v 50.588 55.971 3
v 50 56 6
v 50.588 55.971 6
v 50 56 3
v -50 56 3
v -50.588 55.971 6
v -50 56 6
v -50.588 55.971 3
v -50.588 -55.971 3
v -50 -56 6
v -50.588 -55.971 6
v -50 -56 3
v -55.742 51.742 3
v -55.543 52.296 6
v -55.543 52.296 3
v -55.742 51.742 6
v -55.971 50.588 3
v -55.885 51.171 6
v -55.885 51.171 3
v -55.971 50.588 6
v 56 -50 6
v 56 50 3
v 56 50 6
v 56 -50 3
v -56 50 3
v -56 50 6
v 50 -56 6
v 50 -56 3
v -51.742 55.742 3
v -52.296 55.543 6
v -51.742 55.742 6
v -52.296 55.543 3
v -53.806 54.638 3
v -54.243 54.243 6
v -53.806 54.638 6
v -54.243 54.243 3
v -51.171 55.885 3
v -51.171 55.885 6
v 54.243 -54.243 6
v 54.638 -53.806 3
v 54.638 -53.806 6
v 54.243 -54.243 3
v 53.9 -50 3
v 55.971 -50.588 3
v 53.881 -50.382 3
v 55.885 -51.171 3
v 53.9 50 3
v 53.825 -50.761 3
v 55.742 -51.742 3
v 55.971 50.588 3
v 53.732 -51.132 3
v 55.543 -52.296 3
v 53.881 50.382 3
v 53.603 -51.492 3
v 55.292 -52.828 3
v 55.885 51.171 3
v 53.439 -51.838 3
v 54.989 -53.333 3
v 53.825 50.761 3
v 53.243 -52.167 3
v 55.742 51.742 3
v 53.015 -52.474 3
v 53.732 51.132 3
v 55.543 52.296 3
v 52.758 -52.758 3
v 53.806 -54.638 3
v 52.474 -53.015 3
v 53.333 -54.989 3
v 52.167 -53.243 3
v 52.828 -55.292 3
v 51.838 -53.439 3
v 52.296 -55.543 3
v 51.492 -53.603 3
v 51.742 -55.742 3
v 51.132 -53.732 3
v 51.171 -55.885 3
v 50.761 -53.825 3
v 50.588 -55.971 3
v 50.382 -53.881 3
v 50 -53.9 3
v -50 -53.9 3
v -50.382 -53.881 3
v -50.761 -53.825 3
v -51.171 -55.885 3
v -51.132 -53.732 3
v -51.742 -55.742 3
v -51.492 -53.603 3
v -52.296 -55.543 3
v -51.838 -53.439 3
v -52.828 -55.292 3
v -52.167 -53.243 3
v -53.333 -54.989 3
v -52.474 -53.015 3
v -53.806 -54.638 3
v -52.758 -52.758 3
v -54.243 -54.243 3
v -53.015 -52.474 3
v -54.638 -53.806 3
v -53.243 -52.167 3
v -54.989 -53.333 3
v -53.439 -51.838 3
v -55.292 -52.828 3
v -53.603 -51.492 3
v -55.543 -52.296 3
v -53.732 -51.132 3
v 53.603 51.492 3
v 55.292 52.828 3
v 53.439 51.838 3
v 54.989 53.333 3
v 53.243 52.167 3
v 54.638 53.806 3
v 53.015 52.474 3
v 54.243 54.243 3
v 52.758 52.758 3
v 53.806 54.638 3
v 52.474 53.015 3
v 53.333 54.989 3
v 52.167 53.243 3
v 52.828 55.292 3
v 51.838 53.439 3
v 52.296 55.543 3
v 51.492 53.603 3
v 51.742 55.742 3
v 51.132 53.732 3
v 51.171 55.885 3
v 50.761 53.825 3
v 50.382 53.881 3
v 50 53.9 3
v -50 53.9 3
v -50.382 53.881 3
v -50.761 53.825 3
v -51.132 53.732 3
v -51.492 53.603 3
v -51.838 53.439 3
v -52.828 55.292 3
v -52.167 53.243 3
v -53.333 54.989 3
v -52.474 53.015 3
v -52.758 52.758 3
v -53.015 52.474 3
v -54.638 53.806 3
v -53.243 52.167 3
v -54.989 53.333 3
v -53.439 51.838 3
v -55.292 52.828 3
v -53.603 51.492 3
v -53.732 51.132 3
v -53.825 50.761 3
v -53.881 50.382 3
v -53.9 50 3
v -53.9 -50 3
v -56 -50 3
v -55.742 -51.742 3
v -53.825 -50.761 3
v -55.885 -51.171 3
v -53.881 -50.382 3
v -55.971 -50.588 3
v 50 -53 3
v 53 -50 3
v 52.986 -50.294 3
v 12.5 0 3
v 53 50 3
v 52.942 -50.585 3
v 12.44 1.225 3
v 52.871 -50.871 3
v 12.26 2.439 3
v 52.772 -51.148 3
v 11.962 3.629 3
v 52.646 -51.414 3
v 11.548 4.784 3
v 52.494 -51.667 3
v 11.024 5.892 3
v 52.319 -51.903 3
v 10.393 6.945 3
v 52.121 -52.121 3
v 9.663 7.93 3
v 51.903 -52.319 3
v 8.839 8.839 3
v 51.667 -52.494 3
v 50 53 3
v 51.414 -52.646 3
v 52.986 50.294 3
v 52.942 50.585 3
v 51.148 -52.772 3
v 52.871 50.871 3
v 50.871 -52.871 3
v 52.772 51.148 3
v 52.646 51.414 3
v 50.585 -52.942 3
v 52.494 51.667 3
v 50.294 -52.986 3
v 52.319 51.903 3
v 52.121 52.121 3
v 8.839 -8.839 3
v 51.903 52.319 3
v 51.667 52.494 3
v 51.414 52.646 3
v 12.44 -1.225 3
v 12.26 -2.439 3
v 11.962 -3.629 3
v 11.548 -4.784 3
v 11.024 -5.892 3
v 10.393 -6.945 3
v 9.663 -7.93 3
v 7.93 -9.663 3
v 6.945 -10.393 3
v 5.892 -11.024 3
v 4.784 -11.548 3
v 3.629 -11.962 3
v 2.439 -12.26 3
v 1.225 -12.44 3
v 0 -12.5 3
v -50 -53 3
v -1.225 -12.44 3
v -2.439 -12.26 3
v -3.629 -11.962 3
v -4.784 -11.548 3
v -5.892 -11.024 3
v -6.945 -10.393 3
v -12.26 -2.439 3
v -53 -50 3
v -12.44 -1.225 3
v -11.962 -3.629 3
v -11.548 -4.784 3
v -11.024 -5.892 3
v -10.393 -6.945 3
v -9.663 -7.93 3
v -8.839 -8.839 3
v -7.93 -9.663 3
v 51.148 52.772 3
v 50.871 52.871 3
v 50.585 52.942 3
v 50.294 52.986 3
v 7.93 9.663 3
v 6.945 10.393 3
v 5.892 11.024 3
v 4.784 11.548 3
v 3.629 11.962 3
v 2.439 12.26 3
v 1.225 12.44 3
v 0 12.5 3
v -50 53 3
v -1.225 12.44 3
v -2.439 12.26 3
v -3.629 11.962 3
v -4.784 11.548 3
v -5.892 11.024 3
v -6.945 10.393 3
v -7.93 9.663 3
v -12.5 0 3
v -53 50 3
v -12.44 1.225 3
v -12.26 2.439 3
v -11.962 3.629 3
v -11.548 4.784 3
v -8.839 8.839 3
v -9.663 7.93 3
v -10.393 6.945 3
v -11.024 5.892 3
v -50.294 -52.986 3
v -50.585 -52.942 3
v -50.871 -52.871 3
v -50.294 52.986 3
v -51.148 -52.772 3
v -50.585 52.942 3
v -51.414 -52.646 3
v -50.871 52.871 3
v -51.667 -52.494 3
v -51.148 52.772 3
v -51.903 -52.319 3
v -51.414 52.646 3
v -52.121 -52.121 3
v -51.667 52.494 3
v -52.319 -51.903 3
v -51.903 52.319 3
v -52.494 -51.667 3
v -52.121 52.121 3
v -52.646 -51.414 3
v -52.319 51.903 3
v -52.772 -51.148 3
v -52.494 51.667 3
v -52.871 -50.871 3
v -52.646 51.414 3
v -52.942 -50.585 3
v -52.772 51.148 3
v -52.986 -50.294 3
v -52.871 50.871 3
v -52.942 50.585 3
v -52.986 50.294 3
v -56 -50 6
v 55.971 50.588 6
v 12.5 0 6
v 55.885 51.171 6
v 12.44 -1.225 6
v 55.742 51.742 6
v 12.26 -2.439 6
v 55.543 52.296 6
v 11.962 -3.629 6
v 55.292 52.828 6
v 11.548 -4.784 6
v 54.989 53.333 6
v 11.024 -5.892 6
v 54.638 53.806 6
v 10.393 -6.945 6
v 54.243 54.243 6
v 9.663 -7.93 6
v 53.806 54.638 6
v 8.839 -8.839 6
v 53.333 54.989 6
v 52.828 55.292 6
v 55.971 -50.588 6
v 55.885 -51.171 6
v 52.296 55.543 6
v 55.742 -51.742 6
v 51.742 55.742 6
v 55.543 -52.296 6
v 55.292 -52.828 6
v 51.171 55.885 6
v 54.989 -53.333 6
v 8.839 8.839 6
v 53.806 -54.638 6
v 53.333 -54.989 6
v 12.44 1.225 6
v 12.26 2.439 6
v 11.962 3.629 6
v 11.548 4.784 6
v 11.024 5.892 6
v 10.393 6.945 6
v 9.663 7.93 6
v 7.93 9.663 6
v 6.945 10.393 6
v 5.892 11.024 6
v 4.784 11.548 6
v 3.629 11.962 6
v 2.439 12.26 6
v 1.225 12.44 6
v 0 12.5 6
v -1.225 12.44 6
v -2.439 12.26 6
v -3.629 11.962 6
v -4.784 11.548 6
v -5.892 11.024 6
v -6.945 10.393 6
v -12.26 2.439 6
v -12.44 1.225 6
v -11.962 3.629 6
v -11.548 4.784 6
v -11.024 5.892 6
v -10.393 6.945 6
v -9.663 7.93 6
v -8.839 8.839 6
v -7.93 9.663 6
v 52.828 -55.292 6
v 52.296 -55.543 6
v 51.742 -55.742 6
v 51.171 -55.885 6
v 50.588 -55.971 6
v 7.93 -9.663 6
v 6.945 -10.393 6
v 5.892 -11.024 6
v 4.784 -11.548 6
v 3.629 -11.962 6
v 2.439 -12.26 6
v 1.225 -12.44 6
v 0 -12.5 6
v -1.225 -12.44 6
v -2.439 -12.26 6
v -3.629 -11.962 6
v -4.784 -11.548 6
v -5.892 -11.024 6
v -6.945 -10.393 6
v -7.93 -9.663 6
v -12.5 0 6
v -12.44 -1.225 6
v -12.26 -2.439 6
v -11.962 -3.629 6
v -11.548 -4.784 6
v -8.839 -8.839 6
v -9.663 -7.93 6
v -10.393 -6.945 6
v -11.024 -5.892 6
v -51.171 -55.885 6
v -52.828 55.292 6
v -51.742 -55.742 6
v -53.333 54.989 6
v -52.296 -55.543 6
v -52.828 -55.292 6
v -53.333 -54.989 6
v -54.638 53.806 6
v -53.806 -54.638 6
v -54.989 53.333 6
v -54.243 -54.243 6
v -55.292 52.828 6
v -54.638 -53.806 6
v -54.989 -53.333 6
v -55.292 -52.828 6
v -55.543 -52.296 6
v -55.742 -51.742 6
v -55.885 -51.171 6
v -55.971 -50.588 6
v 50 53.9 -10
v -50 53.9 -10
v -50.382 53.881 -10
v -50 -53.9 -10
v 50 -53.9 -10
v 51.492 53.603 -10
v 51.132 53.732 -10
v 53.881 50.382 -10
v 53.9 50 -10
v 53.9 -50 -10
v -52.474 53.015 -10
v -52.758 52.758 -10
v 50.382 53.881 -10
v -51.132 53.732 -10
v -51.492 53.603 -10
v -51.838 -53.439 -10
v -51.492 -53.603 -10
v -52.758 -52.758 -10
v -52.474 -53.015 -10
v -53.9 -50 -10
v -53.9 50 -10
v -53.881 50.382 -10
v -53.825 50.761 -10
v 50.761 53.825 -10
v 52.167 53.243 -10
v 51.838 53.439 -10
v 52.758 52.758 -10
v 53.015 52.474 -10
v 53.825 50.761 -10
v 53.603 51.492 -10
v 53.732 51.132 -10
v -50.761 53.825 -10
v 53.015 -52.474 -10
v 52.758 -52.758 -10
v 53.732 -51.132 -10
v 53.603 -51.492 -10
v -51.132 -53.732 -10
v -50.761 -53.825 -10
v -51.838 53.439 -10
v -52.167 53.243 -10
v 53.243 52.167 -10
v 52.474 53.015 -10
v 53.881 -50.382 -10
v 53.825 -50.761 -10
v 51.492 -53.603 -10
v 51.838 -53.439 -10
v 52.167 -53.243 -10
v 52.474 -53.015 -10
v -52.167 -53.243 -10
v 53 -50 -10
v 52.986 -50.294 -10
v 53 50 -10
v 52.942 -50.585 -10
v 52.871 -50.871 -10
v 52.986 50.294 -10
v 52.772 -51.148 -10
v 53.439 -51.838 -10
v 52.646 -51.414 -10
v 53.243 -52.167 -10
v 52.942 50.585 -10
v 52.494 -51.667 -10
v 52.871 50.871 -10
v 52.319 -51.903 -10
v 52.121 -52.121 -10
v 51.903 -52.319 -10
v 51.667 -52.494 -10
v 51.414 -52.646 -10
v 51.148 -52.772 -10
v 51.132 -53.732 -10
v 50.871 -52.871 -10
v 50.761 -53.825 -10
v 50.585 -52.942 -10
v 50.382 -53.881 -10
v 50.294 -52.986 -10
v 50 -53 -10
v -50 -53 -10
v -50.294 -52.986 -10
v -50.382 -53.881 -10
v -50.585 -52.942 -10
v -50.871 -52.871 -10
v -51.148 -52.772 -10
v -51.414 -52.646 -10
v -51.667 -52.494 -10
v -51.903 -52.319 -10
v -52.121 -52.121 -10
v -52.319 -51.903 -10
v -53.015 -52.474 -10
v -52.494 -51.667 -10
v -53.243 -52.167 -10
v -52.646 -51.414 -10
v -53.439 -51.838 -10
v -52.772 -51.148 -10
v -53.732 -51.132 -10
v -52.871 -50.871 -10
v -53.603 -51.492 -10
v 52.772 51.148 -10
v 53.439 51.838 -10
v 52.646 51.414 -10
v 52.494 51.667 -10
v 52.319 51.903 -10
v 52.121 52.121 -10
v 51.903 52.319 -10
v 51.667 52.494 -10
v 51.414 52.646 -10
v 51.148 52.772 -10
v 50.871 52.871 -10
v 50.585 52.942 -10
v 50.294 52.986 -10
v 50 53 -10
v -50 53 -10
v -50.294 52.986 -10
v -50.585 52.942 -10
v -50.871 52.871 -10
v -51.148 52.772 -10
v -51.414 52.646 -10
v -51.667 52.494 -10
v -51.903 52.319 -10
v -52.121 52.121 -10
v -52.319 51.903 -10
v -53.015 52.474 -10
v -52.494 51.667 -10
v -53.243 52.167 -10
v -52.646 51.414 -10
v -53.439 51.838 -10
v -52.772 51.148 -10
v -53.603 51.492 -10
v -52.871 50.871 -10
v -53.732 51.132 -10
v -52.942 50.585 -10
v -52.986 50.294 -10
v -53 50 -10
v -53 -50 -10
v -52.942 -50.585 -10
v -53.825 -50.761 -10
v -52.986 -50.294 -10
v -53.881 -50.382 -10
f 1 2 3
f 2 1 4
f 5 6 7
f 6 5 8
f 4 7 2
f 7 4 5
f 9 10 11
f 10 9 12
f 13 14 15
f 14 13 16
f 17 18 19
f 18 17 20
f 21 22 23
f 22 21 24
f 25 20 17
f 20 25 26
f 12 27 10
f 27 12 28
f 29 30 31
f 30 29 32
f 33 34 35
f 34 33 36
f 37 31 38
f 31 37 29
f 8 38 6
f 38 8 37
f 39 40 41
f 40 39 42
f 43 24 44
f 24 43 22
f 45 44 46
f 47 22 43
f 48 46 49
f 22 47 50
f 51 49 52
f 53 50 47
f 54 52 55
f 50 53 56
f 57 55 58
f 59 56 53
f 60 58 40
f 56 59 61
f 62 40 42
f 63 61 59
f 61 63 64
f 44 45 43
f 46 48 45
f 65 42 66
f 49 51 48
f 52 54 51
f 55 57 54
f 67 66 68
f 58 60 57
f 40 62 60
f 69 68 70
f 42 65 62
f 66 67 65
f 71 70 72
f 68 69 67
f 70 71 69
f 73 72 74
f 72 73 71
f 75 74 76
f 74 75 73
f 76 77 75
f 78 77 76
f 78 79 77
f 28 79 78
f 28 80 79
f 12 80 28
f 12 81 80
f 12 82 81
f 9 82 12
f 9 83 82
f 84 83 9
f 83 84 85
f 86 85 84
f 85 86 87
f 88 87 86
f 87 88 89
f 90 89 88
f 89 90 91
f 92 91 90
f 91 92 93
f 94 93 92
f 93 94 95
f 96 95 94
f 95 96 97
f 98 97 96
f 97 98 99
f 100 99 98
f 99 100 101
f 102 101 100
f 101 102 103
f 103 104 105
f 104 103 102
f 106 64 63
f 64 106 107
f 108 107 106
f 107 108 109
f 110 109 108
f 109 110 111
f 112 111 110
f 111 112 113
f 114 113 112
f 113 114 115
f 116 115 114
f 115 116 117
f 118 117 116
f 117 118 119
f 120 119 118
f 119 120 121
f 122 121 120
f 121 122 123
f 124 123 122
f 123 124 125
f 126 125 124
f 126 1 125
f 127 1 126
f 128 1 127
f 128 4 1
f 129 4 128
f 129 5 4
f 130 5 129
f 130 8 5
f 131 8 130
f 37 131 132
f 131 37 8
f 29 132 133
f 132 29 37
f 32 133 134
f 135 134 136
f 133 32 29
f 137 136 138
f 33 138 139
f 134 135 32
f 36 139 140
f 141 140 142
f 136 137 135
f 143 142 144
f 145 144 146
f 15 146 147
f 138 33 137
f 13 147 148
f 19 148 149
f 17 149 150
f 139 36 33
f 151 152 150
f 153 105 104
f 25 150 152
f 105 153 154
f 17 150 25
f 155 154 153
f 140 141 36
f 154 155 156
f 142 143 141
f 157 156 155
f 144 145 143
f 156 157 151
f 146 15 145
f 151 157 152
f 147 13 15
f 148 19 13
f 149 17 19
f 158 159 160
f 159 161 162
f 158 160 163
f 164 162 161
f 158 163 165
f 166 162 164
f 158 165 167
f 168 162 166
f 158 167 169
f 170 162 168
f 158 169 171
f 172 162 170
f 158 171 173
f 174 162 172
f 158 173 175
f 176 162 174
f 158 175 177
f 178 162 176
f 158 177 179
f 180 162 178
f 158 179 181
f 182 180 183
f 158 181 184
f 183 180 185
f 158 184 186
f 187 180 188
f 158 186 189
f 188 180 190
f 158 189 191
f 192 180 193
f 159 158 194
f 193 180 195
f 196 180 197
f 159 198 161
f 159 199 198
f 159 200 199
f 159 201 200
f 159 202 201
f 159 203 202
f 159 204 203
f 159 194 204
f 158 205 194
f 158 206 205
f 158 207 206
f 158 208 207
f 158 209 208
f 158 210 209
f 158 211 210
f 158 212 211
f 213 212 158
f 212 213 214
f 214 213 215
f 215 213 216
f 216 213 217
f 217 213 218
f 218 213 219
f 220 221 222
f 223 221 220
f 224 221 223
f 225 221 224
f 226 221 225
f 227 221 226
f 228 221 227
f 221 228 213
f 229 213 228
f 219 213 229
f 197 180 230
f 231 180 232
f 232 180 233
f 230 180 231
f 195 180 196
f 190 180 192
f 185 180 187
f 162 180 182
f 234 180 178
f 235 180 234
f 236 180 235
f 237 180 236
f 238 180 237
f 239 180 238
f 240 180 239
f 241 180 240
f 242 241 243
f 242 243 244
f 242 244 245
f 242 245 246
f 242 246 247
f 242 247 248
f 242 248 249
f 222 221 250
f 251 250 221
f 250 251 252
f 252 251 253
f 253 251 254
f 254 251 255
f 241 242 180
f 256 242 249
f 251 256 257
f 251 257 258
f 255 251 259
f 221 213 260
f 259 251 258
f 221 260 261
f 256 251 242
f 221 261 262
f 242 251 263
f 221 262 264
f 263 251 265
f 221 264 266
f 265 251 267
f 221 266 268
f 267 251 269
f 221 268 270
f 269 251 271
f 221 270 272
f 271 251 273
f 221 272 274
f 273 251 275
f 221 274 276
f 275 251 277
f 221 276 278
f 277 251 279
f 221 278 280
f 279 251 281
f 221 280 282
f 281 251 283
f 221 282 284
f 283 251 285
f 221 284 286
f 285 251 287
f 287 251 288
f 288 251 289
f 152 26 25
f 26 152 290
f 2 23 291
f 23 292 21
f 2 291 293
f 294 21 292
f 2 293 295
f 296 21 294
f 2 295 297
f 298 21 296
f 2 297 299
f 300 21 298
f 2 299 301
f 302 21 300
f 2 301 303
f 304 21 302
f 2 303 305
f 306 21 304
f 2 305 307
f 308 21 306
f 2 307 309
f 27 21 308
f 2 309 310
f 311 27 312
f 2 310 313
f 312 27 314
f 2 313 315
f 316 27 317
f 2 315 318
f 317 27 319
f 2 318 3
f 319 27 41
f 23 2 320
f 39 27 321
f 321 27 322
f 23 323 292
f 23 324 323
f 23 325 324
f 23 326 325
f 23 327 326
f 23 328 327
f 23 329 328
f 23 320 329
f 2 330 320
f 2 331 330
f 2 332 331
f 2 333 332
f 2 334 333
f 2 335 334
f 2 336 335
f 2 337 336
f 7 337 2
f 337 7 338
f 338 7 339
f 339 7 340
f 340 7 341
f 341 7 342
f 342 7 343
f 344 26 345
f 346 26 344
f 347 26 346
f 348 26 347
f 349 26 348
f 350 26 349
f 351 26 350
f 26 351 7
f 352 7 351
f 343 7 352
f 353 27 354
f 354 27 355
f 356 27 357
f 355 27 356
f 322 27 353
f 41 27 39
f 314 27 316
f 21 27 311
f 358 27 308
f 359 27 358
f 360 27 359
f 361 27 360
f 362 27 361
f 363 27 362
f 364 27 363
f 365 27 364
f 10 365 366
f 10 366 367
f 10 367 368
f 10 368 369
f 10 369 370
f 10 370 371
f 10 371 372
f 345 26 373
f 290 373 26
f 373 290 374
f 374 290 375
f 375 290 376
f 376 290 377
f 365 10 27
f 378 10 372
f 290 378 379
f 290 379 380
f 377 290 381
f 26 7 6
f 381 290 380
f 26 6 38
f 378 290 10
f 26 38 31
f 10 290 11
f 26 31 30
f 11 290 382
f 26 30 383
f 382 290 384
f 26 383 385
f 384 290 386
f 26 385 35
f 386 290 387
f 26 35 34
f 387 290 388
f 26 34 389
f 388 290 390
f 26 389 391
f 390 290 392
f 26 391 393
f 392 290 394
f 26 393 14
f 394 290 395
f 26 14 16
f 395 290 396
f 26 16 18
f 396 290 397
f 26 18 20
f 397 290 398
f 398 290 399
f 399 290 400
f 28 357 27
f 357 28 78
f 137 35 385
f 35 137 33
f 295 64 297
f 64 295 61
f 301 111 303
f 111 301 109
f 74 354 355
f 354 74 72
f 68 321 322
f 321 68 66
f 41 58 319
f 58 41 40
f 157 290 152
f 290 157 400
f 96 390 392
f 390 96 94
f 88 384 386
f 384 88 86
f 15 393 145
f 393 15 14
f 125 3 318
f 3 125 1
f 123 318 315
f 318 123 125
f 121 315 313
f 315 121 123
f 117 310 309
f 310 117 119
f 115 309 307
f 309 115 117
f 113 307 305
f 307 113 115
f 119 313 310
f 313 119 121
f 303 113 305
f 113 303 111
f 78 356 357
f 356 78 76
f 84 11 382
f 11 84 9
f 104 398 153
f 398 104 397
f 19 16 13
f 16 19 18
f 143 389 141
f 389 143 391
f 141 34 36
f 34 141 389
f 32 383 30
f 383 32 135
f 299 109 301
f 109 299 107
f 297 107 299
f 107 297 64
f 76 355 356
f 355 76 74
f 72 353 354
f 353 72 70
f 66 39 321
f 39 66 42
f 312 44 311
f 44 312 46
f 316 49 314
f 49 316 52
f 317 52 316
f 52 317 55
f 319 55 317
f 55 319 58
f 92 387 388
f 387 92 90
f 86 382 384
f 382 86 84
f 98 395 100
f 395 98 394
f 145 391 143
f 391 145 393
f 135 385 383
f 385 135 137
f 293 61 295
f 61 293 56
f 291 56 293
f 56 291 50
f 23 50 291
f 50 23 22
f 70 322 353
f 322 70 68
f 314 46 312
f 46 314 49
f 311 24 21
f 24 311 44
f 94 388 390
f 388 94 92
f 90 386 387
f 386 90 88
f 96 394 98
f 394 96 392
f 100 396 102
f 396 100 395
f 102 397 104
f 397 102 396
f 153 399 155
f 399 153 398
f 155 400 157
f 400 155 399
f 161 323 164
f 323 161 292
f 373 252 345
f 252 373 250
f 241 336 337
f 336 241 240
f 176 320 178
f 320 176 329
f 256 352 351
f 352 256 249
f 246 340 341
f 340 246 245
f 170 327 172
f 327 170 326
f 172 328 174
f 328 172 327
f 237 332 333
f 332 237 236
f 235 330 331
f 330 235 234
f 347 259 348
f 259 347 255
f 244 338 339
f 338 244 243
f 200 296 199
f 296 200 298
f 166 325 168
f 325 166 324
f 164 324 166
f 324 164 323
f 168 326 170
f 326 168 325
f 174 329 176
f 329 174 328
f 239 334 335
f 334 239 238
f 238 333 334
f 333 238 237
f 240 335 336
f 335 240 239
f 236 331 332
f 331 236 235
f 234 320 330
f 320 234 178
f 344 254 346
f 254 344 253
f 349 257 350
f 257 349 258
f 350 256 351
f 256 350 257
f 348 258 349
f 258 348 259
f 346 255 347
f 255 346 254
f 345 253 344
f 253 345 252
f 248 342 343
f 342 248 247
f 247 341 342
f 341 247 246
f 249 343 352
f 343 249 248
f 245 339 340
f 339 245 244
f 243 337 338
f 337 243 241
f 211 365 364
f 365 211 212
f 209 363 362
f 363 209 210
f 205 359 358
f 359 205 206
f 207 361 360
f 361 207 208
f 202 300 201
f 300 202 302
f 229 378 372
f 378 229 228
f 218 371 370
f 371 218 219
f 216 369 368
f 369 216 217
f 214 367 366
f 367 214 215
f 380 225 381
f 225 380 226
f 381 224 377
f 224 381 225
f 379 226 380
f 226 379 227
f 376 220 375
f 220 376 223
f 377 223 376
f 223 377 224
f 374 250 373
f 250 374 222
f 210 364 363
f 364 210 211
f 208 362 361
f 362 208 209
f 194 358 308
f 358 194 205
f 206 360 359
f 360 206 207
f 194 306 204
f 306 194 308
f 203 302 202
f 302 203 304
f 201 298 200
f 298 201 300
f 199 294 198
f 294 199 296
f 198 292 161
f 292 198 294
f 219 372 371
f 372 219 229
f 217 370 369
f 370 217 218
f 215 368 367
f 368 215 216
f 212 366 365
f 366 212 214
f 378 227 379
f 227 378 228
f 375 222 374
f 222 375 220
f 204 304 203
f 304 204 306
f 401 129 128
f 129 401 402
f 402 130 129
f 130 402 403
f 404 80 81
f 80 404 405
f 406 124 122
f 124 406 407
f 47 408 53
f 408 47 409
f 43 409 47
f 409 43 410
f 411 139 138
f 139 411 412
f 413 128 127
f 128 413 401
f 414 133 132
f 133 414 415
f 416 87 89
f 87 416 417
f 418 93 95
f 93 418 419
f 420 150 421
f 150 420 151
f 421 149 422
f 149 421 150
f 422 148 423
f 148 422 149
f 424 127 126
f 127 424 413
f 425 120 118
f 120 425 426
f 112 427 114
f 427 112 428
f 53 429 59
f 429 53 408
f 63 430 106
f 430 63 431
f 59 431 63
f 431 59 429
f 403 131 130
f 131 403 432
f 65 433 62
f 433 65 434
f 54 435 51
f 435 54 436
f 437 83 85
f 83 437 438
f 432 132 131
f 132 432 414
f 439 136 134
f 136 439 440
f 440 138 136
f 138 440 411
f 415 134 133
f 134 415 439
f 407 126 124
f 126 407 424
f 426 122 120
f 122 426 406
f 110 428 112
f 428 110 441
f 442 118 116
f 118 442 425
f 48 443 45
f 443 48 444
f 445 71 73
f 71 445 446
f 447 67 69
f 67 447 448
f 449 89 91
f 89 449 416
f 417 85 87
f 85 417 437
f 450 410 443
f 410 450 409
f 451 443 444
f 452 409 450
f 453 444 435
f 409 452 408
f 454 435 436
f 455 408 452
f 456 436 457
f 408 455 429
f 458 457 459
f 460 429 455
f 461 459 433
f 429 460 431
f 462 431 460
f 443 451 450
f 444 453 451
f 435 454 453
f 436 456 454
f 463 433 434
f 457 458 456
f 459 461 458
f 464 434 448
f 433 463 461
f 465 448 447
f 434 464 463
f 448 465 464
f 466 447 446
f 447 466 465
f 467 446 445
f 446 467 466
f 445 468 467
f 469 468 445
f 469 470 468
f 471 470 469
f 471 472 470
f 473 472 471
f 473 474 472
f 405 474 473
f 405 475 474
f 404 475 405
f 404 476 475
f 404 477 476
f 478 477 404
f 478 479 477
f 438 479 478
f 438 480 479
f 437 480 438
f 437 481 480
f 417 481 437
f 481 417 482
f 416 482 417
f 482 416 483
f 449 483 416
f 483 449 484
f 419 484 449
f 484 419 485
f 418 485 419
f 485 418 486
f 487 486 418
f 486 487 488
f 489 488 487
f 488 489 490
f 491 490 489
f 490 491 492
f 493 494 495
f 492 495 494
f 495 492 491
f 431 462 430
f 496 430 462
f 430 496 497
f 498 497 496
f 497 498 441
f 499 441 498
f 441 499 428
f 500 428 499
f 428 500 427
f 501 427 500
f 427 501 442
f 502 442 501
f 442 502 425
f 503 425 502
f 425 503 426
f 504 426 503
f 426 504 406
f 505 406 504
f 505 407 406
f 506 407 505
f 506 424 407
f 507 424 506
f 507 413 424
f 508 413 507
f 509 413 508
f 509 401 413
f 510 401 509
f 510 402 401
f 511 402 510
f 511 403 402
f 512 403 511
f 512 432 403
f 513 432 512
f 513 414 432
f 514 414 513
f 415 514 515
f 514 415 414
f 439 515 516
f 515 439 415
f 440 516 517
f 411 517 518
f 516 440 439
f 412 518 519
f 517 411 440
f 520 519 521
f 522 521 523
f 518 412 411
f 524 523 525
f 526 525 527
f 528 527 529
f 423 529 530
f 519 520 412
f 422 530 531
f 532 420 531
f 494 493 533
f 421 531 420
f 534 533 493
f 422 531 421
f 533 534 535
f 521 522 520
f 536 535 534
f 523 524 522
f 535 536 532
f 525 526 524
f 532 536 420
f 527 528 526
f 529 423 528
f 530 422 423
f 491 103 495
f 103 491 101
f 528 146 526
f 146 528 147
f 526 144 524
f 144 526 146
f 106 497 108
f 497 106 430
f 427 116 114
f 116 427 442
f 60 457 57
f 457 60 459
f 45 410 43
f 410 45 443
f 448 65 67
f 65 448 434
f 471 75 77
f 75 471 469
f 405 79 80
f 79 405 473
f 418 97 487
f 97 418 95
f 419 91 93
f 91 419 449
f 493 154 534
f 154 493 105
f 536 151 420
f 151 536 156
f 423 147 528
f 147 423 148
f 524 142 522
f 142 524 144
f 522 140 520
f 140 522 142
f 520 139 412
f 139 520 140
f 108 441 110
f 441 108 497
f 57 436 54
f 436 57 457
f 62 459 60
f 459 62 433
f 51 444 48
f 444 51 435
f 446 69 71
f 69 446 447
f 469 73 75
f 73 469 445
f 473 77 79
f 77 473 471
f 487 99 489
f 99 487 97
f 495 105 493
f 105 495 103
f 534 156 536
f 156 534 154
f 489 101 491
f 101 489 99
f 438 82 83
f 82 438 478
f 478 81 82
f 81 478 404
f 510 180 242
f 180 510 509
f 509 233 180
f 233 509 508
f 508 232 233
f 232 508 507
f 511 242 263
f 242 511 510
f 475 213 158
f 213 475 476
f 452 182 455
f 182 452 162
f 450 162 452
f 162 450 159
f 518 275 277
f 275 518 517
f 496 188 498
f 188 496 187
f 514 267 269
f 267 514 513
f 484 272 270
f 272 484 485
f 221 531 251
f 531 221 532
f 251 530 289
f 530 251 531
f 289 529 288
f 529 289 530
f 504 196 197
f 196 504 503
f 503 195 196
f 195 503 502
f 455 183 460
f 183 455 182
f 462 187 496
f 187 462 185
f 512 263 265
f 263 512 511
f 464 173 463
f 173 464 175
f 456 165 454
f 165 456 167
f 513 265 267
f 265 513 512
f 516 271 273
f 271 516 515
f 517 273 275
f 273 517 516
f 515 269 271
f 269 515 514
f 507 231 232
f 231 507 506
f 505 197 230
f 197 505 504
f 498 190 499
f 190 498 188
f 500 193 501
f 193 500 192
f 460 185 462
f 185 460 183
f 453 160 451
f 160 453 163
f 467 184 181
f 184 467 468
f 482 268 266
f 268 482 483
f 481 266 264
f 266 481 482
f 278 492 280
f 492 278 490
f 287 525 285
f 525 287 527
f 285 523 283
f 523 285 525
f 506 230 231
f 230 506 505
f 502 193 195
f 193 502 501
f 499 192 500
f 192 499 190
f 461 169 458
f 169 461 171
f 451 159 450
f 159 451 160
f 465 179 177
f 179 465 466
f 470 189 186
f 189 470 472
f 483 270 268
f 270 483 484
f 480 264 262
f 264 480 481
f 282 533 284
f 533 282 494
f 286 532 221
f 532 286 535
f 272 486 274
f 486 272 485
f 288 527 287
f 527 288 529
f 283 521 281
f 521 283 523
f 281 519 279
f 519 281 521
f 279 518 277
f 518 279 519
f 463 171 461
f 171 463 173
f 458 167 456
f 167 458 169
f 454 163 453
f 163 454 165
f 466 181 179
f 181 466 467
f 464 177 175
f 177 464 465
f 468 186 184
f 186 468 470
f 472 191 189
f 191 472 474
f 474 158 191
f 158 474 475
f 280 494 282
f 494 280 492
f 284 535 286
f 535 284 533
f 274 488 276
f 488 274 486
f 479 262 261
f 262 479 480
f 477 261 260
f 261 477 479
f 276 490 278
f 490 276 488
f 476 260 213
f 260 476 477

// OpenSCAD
$fn=64;
difference () {
    hull() {
        translate([-50,50,3])
        cylinder(d=12, h=3);
        translate([-50,-50,3])
        cylinder(d=12, h=3);
        translate([50,50,3])
        cylinder(d=12, h=3);
        translate([50,-50,3])
        cylinder(d=12, h=3);
    }
    cylinder(d=25,h=10);

}
difference() {
        hull() {
        translate([-50,50,-10])
        cylinder(d=7.8, h=15);
        translate([-50,-50,-10])
        cylinder(d=7.8, h=15);
        translate([50,50,-10])
        cylinder(d=7.8, h=15);
        translate([50,-50,-10])
        cylinder(d=7.8, h=15);
    }
        hull() {
        translate([-50,50,-11])
        cylinder(d=6, h=17);
        translate([-50,-50,-11])
        cylinder(d=6, h=17);
        translate([50,50,-11])
        cylinder(d=6, h=17);
        translate([50,-50,-11])
        cylinder(d=6, h=17);
    }
}
